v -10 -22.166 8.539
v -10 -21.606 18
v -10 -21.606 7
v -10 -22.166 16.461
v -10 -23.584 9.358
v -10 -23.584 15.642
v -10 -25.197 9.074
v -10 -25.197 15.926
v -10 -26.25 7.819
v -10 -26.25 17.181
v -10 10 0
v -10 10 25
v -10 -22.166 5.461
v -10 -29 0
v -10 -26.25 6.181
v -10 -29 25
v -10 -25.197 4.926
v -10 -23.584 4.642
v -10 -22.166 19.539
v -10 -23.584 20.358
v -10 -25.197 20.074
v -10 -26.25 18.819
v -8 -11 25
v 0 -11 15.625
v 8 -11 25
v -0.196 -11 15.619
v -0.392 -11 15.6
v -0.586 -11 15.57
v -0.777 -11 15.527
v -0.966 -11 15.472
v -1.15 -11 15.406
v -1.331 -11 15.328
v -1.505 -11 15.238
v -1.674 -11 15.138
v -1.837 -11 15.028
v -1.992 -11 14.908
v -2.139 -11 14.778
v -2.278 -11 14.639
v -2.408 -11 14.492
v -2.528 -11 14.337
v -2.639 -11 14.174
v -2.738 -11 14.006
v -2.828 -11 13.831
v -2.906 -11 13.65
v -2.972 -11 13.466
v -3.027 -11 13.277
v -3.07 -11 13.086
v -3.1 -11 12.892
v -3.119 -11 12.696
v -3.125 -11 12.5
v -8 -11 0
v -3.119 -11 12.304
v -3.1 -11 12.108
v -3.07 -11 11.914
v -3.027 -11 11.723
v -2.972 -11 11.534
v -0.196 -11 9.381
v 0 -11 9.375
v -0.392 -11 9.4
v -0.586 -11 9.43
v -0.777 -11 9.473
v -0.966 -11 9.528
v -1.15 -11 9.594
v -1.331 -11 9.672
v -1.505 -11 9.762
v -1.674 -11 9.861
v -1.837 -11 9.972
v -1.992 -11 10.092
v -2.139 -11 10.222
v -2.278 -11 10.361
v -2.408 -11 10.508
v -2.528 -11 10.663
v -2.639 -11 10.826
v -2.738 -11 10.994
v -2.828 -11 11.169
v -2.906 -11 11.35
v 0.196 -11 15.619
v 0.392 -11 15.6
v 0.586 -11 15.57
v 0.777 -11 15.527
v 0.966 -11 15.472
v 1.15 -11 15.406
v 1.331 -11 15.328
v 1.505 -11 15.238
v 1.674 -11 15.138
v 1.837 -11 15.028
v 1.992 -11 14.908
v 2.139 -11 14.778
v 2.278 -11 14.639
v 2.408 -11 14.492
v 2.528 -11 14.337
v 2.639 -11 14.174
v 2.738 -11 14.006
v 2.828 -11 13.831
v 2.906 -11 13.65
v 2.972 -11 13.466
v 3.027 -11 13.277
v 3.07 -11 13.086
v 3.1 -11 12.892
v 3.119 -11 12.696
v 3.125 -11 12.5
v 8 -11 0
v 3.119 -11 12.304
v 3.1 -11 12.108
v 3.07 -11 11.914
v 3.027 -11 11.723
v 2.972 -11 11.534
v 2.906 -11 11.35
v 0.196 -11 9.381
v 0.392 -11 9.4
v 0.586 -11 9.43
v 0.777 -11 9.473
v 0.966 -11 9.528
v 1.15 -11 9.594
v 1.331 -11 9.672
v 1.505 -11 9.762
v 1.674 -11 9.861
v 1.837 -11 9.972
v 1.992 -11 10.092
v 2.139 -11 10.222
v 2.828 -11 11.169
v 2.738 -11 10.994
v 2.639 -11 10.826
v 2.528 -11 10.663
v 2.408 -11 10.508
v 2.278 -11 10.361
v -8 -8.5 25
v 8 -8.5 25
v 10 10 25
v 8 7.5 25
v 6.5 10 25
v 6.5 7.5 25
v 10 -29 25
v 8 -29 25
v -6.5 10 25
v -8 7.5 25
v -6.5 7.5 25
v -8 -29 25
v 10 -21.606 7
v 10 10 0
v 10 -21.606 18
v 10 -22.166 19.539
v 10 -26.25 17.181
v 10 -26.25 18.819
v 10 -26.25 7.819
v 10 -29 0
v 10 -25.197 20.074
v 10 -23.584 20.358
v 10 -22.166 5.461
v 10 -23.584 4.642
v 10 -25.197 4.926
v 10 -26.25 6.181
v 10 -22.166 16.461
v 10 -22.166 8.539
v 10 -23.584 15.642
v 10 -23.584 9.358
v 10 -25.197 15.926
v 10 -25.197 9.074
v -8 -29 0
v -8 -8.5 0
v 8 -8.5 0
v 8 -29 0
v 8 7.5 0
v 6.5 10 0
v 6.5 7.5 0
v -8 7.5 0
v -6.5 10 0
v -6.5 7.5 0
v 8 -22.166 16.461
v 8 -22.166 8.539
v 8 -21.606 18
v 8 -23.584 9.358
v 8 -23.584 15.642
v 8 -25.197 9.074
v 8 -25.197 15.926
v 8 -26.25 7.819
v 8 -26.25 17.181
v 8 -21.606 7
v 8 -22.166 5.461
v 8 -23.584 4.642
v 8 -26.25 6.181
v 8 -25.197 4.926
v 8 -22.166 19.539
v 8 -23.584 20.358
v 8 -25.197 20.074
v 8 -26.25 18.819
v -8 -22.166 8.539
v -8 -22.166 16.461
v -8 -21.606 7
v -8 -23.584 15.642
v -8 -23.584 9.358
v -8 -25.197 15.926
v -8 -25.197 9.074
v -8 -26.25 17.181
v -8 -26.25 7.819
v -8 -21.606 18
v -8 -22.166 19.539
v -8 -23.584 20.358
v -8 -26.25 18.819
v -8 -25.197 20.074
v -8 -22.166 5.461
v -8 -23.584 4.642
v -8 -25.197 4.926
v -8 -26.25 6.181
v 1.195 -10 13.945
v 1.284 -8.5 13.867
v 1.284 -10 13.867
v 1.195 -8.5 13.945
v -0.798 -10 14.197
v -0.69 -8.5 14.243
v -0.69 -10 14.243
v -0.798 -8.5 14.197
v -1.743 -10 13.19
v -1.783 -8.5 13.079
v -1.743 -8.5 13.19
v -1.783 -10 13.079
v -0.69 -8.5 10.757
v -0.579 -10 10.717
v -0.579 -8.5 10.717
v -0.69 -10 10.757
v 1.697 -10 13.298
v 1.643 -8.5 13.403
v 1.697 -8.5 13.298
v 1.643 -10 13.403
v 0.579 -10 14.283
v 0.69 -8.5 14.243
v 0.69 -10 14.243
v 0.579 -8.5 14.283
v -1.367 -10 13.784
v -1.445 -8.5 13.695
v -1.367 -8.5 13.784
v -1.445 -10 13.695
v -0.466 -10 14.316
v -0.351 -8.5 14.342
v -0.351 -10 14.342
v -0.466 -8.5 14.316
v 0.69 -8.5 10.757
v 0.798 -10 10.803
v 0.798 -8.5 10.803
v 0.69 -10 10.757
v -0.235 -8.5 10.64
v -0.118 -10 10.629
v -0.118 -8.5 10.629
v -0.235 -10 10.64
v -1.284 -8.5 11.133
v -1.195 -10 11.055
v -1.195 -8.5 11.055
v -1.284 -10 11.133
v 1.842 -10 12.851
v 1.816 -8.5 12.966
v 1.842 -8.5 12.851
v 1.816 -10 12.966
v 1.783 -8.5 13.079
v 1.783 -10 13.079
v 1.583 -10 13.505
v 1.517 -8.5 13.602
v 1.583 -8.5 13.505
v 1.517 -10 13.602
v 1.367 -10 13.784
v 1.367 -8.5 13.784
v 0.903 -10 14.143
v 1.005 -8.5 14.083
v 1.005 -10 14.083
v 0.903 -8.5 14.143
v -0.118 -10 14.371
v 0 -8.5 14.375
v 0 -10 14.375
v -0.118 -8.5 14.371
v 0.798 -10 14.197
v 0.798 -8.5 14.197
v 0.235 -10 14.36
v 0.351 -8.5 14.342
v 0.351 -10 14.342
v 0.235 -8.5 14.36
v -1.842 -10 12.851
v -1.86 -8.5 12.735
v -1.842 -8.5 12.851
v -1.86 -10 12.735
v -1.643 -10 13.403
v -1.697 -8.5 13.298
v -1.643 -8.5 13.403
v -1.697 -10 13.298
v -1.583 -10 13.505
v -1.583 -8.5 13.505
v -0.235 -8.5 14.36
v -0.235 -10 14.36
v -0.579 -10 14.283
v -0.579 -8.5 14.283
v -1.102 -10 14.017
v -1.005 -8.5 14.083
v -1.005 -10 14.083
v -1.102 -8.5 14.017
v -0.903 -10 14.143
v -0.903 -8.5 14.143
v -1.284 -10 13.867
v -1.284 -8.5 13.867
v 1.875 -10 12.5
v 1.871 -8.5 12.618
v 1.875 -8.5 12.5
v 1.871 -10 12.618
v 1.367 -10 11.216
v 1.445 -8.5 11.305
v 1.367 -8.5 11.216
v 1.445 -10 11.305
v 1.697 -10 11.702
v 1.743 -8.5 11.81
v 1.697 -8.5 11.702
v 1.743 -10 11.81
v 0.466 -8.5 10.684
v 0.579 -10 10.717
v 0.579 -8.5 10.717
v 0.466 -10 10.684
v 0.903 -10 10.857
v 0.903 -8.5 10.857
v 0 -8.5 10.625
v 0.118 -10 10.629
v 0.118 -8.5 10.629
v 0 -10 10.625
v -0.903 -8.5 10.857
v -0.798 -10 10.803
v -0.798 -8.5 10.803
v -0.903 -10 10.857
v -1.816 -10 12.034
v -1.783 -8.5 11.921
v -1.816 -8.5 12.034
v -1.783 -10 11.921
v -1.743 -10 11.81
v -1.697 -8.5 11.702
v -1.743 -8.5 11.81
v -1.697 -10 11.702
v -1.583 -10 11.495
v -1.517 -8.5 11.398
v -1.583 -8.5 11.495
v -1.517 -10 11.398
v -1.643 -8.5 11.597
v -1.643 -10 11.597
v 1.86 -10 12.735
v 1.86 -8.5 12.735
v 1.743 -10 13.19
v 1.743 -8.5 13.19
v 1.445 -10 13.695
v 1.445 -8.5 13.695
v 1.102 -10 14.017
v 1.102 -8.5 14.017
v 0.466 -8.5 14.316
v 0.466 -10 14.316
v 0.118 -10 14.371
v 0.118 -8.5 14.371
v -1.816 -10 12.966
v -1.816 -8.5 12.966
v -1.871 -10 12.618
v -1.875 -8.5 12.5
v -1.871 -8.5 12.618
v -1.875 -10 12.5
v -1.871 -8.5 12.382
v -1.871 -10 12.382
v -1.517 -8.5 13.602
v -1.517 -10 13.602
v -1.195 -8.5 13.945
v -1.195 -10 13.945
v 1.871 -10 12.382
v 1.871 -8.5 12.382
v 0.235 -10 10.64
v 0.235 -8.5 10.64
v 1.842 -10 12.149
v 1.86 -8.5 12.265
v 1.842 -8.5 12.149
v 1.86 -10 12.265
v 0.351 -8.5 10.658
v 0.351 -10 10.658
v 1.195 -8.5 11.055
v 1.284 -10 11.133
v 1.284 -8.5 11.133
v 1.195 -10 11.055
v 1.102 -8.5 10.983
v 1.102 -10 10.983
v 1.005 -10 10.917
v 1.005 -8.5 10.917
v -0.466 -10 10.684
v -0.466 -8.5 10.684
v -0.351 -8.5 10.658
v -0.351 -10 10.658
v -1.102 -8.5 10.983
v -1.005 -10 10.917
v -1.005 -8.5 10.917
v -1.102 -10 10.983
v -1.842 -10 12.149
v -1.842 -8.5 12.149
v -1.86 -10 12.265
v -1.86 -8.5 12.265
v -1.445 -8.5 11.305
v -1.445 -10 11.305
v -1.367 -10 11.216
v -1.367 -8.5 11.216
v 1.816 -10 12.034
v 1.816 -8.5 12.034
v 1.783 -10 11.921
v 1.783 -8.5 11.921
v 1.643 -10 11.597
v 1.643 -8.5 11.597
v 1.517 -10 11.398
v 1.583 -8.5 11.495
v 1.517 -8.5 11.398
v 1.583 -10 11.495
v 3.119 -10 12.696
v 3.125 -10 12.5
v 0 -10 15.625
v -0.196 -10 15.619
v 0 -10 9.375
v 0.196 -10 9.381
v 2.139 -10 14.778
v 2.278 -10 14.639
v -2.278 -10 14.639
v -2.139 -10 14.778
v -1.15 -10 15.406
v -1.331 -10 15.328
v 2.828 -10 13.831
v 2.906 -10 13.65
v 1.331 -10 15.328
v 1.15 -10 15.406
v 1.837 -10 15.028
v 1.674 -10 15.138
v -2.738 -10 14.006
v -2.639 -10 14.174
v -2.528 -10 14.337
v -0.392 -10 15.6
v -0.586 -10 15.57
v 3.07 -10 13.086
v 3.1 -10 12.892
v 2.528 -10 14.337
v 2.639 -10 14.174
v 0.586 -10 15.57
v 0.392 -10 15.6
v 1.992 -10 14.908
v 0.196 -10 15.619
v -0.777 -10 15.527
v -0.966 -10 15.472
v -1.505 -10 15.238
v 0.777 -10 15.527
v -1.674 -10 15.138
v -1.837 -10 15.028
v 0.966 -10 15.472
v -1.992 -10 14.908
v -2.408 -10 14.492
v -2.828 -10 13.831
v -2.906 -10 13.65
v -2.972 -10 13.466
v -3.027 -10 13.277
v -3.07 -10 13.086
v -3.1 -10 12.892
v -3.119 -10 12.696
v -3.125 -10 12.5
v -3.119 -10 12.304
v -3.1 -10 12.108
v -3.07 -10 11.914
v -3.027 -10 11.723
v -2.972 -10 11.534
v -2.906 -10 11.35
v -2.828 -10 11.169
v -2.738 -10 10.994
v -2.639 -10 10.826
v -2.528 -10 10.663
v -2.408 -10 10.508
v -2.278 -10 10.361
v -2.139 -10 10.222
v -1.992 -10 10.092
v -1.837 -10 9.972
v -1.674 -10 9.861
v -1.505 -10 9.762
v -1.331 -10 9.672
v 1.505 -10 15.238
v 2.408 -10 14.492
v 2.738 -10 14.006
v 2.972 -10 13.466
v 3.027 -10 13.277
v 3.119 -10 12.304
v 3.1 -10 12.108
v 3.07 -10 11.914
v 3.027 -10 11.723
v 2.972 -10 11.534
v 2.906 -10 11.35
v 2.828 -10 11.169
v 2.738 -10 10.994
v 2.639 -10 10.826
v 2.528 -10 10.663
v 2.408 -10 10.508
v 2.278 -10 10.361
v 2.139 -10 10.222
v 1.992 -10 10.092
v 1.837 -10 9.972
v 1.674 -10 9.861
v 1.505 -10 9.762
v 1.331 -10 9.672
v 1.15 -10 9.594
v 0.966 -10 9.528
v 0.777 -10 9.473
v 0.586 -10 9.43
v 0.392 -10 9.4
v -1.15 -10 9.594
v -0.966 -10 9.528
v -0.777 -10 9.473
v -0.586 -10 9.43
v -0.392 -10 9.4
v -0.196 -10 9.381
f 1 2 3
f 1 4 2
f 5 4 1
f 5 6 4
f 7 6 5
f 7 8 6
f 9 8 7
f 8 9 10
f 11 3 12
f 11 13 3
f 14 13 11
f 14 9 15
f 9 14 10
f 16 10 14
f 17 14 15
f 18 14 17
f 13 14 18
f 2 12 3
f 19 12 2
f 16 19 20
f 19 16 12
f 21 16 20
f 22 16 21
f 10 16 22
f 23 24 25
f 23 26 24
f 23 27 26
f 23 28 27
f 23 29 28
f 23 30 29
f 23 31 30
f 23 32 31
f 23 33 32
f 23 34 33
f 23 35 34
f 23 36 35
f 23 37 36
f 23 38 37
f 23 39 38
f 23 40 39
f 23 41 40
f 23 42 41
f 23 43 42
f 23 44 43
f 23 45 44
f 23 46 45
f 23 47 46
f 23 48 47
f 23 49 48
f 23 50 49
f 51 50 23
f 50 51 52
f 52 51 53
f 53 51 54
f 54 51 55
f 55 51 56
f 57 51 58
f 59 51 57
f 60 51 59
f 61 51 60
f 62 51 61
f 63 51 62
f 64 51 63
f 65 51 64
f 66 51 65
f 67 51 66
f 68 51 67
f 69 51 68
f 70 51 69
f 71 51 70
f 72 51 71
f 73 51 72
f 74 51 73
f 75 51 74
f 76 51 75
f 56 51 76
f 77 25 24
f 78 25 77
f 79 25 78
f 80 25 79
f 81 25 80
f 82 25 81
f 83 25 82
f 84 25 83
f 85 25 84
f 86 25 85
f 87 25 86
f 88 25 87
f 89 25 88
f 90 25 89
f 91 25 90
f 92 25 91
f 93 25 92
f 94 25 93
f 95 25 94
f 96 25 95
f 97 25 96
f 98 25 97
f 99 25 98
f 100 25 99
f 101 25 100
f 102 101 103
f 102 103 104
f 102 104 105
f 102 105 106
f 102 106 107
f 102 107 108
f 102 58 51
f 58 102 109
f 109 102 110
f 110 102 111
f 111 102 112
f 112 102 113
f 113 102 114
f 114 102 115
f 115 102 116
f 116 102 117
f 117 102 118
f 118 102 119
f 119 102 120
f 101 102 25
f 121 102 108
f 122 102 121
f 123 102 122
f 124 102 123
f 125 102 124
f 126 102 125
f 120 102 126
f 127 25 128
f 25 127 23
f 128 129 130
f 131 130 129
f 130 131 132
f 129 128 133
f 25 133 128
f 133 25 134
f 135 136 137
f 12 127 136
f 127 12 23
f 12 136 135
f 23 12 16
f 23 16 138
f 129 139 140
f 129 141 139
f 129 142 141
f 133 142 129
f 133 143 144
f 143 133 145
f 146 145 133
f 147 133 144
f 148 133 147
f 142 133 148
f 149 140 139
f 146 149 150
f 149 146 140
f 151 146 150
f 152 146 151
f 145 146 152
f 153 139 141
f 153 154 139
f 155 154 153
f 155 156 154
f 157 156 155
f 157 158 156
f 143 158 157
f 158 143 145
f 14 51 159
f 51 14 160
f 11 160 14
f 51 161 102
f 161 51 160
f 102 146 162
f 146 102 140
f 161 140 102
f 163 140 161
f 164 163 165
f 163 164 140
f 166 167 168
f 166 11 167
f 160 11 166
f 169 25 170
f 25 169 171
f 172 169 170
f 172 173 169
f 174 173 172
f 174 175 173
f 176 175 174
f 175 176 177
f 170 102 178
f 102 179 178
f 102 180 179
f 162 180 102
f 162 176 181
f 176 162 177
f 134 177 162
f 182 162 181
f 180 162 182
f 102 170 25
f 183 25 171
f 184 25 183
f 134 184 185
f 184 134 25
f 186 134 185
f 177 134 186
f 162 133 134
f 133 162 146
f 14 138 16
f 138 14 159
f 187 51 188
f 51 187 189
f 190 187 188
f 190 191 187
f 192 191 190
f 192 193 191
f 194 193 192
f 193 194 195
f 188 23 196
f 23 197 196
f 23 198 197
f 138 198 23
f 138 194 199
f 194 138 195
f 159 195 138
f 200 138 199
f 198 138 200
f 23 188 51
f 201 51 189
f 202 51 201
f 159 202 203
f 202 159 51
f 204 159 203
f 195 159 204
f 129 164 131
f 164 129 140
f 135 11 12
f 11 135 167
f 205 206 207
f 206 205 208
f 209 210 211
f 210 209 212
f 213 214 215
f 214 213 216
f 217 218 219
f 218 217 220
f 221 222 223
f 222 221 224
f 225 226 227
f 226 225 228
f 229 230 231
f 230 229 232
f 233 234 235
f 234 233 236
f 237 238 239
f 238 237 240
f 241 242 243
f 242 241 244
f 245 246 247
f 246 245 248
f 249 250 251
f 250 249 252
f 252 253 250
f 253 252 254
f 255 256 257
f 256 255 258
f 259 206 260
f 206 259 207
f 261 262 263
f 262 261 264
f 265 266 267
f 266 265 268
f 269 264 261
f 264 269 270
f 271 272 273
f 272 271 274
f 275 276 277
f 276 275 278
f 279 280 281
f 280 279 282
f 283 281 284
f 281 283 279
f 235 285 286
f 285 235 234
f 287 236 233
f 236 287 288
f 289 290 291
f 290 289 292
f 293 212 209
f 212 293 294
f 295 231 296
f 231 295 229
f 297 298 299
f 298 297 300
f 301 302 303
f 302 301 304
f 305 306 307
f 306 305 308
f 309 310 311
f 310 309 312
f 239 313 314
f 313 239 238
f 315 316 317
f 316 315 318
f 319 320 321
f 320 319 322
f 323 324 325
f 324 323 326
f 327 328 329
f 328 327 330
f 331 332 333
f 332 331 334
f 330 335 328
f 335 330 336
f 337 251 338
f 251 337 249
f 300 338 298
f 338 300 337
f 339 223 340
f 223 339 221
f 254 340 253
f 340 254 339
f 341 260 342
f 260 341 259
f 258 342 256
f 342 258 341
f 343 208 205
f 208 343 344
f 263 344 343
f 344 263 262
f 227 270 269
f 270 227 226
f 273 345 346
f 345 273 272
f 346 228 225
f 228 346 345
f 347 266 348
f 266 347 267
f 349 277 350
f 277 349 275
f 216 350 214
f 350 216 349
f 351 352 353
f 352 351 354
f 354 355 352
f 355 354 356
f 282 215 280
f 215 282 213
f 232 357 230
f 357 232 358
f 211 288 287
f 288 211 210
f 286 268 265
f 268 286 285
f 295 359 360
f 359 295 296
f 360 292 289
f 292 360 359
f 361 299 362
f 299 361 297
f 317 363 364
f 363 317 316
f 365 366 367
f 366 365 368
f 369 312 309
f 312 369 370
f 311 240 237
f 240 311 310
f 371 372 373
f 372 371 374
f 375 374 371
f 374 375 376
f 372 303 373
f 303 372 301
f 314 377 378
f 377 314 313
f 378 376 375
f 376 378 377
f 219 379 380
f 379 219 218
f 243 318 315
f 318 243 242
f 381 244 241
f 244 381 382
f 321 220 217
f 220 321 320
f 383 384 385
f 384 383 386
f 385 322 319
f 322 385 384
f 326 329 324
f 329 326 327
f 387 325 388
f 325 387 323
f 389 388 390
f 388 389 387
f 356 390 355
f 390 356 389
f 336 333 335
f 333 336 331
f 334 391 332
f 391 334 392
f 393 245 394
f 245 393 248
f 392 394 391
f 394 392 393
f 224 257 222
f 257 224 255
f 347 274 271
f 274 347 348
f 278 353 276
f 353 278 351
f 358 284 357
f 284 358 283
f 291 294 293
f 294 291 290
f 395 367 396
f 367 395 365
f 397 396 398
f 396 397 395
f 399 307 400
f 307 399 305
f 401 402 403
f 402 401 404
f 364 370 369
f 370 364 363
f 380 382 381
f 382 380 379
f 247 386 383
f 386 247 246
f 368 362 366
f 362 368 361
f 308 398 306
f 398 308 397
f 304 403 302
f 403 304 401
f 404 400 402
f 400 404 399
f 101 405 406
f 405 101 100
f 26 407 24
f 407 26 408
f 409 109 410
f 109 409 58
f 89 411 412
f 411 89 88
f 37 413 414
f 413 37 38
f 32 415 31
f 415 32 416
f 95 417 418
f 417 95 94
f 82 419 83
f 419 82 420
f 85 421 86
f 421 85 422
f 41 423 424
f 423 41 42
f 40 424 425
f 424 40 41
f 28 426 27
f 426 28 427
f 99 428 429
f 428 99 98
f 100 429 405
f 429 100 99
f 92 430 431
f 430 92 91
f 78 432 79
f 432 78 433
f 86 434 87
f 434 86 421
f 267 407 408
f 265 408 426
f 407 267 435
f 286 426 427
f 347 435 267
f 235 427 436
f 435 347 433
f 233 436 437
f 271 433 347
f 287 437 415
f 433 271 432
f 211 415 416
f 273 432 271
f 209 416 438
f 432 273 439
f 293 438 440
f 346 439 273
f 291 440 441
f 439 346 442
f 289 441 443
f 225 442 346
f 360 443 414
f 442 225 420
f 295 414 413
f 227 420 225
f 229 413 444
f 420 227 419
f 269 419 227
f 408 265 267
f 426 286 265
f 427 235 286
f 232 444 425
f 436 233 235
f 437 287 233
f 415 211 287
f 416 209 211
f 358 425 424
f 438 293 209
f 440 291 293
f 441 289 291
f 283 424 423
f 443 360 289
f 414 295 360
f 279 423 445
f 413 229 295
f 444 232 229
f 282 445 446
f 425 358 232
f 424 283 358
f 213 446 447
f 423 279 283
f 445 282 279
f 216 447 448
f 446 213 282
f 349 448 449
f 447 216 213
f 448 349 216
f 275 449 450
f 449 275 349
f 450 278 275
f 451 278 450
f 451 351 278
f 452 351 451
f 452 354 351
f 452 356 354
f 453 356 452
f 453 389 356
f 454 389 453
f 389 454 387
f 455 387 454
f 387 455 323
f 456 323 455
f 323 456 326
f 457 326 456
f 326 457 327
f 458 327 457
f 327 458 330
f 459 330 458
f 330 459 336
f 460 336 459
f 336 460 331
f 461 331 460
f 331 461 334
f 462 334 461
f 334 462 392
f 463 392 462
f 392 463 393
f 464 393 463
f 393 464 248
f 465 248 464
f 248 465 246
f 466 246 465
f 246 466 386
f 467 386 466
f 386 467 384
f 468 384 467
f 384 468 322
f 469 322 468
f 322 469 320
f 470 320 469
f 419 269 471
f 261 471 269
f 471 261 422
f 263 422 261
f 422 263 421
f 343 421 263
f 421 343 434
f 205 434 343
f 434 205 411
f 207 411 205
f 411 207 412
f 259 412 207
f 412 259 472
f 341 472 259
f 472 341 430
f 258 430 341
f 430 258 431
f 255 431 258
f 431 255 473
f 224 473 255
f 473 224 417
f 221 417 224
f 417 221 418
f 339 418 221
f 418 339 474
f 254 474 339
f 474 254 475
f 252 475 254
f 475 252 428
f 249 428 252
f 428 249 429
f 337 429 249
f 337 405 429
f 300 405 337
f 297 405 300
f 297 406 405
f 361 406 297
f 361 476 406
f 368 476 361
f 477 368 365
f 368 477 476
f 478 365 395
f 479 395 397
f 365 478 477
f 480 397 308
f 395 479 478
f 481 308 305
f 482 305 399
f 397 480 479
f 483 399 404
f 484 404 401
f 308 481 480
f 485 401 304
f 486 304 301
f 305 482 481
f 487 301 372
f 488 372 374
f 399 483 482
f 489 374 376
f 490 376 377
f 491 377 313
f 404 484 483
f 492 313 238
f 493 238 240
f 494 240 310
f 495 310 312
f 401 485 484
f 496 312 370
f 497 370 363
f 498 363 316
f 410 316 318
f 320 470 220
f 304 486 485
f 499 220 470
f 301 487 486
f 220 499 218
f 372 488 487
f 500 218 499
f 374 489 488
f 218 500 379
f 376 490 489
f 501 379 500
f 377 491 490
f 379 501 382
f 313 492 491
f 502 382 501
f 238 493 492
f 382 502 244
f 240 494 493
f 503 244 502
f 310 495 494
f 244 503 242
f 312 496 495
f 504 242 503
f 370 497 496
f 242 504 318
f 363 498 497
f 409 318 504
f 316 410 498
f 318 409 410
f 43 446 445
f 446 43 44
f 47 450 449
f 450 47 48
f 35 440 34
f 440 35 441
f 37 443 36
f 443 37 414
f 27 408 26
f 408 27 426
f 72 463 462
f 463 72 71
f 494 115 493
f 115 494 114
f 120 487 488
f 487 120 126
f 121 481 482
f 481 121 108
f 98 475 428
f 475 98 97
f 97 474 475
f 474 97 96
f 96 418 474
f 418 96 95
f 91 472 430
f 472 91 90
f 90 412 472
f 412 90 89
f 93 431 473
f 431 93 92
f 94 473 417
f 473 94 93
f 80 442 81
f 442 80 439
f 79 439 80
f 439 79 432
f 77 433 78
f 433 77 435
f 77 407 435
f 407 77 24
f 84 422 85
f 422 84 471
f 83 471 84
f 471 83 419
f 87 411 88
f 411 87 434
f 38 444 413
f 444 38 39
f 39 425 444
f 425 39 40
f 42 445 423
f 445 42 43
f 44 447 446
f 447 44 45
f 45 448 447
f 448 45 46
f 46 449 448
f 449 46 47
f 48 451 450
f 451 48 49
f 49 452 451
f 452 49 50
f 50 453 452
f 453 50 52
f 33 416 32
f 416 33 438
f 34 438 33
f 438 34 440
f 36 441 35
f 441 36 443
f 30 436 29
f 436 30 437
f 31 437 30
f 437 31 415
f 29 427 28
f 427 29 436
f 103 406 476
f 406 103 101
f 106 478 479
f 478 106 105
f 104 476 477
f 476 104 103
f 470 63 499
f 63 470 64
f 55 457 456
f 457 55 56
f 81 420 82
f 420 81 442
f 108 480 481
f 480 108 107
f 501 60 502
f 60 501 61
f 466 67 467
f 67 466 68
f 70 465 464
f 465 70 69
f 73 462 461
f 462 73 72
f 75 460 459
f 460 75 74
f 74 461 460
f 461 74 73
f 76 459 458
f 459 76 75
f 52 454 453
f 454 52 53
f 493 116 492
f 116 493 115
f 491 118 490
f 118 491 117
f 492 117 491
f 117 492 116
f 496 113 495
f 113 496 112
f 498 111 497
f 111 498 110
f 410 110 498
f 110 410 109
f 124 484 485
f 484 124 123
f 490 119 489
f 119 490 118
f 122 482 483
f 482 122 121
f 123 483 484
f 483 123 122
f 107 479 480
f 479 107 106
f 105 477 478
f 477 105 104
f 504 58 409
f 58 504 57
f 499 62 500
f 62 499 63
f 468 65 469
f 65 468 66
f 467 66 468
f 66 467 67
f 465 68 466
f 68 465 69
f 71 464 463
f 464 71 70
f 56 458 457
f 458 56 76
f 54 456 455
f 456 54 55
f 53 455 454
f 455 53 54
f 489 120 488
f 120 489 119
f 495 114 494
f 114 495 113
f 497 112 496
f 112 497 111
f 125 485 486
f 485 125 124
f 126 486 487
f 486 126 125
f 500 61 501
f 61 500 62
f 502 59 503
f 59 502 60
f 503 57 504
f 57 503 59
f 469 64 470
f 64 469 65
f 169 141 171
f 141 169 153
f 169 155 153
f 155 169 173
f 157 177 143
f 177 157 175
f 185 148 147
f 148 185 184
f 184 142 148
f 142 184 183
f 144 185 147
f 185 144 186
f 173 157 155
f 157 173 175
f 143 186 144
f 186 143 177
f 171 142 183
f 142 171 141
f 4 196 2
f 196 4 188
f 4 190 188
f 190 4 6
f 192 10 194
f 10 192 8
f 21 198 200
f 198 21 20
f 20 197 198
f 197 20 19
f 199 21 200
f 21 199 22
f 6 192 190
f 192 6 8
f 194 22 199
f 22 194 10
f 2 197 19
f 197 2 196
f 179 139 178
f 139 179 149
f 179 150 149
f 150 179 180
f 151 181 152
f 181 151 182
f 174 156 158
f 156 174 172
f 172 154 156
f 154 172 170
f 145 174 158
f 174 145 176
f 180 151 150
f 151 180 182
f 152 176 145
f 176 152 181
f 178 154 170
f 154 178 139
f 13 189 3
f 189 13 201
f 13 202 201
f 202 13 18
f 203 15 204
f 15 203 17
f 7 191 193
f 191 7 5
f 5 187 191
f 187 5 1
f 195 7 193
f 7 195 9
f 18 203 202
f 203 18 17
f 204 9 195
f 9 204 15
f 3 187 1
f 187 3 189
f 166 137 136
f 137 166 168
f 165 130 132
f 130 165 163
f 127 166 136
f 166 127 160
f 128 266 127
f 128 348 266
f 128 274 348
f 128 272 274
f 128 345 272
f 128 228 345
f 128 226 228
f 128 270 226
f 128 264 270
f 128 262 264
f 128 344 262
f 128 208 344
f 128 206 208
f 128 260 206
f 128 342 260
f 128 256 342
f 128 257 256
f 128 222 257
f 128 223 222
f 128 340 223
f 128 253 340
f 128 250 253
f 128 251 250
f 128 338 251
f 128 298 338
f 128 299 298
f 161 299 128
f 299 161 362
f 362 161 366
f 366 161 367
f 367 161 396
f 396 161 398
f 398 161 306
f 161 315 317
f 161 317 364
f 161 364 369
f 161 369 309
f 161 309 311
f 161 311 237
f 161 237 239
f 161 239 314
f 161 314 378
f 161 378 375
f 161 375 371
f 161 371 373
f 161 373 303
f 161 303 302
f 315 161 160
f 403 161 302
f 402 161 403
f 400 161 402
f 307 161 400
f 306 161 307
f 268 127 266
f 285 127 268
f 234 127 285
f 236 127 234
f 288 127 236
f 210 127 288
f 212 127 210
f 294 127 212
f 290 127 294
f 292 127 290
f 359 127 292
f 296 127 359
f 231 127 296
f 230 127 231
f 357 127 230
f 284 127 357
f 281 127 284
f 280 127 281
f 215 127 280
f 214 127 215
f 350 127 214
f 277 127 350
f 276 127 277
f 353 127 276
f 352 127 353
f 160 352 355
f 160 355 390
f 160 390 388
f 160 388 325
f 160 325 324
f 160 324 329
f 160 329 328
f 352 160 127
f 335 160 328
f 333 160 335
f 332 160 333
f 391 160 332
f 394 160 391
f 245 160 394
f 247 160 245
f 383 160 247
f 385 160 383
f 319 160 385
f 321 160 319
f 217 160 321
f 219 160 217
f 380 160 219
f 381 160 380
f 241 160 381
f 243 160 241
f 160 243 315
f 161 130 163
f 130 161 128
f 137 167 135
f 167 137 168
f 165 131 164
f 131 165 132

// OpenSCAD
// Kossel 1515 extrusion cable organizer/clip
// License: CC1.0 Universal

$fn=100; 
plate_length = 25;
plate_height = 20;

plate_width  = 20;
plate_thickness = 2;

num_drills = 1;
inset_depth = 1.5;
drill_depth = 4;

wall_length = 19;

// Polyholes from: http://hydraraptor.blogspot.com/2011/02/polyholes.html
module polyhole(h, d) {
    n = max(round(2 * d),3);
    rotate([0,0,180])
        cylinder(h = h, r = (d / 2) / cos (180 / n), $fn = n);
}

module openbeam() {
    linear_extrude(rotate = 90, height = 100, center = true, convexity = 10) import (file = "openbeam.dxf");
}


module inset_drills(distance, drill_size, inset_depth) {
    translate([0, distance*20, -drill_depth]) cylinder(r=drill_size/2, h=drill_depth);
    translate([0, distance*20, -1]) cylinder(r=drill_size/1.2, h=inset_depth);
}

module plate() {
    difference() {
      union() {
        // Interface plate (to extrusion)
        cube([plate_thickness, plate_length, plate_height]);
        
        // Bottom plate (where driver shafts exit))
        cube([plate_width, plate_length, plate_thickness]);
          
        // Top plate (driver landing area)
        translate([19-wall_length, 0, plate_height-2]) cube([plate_width, plate_length, plate_thickness]);  
         
        // Top 'ceiling' wall  
        translate([-(wall_length), 0, 10]) cube([wall_length, plate_length, plate_height - 10]); 
          
        // Bottom 'floor' wall
        translate([-(wall_length), 0, 0]) cube([wall_length, plate_length, plate_height - 10]);    
      }
    
      // Mounting plate drill
      #translate([2,  -27.5, 10]) rotate([0,90,0]) inset_drills(2, 3.75, 2);
      
      // Zip tie drills
      for ( i = [ 1 : num_drills ] ) {
        translate([15, -2, 2]) translate([0, i*20, -3]) polyhole(9, 4.5);
        translate([15, -2, 16]) translate([0, i*20, -3]) polyhole(9, 4.5);
          
        translate([15, -13, 2]) translate([0, i*20, -3]) polyhole(9, 4.5);
        translate([15, -13, 16]) translate([0, i*20, -3]) polyhole(9, 4.5);
      }
      
      // Beam connector
      translate([-(wall_length-2.5), 0, 2]) cube([(wall_length-3), plate_length, 16]);
      
      // Cutout at snap area
      translate([-wall_length, 0, 3.5]) cube([2.5, plate_length, 13]);
    }
}

rotate([0, 90, 180]) {
    rotate([0, 0, 90]) translate([9, 0, -10]) plate();
    //rotate([0, 90, 180]) translate([0, 0, 0]) openbeam();
}
